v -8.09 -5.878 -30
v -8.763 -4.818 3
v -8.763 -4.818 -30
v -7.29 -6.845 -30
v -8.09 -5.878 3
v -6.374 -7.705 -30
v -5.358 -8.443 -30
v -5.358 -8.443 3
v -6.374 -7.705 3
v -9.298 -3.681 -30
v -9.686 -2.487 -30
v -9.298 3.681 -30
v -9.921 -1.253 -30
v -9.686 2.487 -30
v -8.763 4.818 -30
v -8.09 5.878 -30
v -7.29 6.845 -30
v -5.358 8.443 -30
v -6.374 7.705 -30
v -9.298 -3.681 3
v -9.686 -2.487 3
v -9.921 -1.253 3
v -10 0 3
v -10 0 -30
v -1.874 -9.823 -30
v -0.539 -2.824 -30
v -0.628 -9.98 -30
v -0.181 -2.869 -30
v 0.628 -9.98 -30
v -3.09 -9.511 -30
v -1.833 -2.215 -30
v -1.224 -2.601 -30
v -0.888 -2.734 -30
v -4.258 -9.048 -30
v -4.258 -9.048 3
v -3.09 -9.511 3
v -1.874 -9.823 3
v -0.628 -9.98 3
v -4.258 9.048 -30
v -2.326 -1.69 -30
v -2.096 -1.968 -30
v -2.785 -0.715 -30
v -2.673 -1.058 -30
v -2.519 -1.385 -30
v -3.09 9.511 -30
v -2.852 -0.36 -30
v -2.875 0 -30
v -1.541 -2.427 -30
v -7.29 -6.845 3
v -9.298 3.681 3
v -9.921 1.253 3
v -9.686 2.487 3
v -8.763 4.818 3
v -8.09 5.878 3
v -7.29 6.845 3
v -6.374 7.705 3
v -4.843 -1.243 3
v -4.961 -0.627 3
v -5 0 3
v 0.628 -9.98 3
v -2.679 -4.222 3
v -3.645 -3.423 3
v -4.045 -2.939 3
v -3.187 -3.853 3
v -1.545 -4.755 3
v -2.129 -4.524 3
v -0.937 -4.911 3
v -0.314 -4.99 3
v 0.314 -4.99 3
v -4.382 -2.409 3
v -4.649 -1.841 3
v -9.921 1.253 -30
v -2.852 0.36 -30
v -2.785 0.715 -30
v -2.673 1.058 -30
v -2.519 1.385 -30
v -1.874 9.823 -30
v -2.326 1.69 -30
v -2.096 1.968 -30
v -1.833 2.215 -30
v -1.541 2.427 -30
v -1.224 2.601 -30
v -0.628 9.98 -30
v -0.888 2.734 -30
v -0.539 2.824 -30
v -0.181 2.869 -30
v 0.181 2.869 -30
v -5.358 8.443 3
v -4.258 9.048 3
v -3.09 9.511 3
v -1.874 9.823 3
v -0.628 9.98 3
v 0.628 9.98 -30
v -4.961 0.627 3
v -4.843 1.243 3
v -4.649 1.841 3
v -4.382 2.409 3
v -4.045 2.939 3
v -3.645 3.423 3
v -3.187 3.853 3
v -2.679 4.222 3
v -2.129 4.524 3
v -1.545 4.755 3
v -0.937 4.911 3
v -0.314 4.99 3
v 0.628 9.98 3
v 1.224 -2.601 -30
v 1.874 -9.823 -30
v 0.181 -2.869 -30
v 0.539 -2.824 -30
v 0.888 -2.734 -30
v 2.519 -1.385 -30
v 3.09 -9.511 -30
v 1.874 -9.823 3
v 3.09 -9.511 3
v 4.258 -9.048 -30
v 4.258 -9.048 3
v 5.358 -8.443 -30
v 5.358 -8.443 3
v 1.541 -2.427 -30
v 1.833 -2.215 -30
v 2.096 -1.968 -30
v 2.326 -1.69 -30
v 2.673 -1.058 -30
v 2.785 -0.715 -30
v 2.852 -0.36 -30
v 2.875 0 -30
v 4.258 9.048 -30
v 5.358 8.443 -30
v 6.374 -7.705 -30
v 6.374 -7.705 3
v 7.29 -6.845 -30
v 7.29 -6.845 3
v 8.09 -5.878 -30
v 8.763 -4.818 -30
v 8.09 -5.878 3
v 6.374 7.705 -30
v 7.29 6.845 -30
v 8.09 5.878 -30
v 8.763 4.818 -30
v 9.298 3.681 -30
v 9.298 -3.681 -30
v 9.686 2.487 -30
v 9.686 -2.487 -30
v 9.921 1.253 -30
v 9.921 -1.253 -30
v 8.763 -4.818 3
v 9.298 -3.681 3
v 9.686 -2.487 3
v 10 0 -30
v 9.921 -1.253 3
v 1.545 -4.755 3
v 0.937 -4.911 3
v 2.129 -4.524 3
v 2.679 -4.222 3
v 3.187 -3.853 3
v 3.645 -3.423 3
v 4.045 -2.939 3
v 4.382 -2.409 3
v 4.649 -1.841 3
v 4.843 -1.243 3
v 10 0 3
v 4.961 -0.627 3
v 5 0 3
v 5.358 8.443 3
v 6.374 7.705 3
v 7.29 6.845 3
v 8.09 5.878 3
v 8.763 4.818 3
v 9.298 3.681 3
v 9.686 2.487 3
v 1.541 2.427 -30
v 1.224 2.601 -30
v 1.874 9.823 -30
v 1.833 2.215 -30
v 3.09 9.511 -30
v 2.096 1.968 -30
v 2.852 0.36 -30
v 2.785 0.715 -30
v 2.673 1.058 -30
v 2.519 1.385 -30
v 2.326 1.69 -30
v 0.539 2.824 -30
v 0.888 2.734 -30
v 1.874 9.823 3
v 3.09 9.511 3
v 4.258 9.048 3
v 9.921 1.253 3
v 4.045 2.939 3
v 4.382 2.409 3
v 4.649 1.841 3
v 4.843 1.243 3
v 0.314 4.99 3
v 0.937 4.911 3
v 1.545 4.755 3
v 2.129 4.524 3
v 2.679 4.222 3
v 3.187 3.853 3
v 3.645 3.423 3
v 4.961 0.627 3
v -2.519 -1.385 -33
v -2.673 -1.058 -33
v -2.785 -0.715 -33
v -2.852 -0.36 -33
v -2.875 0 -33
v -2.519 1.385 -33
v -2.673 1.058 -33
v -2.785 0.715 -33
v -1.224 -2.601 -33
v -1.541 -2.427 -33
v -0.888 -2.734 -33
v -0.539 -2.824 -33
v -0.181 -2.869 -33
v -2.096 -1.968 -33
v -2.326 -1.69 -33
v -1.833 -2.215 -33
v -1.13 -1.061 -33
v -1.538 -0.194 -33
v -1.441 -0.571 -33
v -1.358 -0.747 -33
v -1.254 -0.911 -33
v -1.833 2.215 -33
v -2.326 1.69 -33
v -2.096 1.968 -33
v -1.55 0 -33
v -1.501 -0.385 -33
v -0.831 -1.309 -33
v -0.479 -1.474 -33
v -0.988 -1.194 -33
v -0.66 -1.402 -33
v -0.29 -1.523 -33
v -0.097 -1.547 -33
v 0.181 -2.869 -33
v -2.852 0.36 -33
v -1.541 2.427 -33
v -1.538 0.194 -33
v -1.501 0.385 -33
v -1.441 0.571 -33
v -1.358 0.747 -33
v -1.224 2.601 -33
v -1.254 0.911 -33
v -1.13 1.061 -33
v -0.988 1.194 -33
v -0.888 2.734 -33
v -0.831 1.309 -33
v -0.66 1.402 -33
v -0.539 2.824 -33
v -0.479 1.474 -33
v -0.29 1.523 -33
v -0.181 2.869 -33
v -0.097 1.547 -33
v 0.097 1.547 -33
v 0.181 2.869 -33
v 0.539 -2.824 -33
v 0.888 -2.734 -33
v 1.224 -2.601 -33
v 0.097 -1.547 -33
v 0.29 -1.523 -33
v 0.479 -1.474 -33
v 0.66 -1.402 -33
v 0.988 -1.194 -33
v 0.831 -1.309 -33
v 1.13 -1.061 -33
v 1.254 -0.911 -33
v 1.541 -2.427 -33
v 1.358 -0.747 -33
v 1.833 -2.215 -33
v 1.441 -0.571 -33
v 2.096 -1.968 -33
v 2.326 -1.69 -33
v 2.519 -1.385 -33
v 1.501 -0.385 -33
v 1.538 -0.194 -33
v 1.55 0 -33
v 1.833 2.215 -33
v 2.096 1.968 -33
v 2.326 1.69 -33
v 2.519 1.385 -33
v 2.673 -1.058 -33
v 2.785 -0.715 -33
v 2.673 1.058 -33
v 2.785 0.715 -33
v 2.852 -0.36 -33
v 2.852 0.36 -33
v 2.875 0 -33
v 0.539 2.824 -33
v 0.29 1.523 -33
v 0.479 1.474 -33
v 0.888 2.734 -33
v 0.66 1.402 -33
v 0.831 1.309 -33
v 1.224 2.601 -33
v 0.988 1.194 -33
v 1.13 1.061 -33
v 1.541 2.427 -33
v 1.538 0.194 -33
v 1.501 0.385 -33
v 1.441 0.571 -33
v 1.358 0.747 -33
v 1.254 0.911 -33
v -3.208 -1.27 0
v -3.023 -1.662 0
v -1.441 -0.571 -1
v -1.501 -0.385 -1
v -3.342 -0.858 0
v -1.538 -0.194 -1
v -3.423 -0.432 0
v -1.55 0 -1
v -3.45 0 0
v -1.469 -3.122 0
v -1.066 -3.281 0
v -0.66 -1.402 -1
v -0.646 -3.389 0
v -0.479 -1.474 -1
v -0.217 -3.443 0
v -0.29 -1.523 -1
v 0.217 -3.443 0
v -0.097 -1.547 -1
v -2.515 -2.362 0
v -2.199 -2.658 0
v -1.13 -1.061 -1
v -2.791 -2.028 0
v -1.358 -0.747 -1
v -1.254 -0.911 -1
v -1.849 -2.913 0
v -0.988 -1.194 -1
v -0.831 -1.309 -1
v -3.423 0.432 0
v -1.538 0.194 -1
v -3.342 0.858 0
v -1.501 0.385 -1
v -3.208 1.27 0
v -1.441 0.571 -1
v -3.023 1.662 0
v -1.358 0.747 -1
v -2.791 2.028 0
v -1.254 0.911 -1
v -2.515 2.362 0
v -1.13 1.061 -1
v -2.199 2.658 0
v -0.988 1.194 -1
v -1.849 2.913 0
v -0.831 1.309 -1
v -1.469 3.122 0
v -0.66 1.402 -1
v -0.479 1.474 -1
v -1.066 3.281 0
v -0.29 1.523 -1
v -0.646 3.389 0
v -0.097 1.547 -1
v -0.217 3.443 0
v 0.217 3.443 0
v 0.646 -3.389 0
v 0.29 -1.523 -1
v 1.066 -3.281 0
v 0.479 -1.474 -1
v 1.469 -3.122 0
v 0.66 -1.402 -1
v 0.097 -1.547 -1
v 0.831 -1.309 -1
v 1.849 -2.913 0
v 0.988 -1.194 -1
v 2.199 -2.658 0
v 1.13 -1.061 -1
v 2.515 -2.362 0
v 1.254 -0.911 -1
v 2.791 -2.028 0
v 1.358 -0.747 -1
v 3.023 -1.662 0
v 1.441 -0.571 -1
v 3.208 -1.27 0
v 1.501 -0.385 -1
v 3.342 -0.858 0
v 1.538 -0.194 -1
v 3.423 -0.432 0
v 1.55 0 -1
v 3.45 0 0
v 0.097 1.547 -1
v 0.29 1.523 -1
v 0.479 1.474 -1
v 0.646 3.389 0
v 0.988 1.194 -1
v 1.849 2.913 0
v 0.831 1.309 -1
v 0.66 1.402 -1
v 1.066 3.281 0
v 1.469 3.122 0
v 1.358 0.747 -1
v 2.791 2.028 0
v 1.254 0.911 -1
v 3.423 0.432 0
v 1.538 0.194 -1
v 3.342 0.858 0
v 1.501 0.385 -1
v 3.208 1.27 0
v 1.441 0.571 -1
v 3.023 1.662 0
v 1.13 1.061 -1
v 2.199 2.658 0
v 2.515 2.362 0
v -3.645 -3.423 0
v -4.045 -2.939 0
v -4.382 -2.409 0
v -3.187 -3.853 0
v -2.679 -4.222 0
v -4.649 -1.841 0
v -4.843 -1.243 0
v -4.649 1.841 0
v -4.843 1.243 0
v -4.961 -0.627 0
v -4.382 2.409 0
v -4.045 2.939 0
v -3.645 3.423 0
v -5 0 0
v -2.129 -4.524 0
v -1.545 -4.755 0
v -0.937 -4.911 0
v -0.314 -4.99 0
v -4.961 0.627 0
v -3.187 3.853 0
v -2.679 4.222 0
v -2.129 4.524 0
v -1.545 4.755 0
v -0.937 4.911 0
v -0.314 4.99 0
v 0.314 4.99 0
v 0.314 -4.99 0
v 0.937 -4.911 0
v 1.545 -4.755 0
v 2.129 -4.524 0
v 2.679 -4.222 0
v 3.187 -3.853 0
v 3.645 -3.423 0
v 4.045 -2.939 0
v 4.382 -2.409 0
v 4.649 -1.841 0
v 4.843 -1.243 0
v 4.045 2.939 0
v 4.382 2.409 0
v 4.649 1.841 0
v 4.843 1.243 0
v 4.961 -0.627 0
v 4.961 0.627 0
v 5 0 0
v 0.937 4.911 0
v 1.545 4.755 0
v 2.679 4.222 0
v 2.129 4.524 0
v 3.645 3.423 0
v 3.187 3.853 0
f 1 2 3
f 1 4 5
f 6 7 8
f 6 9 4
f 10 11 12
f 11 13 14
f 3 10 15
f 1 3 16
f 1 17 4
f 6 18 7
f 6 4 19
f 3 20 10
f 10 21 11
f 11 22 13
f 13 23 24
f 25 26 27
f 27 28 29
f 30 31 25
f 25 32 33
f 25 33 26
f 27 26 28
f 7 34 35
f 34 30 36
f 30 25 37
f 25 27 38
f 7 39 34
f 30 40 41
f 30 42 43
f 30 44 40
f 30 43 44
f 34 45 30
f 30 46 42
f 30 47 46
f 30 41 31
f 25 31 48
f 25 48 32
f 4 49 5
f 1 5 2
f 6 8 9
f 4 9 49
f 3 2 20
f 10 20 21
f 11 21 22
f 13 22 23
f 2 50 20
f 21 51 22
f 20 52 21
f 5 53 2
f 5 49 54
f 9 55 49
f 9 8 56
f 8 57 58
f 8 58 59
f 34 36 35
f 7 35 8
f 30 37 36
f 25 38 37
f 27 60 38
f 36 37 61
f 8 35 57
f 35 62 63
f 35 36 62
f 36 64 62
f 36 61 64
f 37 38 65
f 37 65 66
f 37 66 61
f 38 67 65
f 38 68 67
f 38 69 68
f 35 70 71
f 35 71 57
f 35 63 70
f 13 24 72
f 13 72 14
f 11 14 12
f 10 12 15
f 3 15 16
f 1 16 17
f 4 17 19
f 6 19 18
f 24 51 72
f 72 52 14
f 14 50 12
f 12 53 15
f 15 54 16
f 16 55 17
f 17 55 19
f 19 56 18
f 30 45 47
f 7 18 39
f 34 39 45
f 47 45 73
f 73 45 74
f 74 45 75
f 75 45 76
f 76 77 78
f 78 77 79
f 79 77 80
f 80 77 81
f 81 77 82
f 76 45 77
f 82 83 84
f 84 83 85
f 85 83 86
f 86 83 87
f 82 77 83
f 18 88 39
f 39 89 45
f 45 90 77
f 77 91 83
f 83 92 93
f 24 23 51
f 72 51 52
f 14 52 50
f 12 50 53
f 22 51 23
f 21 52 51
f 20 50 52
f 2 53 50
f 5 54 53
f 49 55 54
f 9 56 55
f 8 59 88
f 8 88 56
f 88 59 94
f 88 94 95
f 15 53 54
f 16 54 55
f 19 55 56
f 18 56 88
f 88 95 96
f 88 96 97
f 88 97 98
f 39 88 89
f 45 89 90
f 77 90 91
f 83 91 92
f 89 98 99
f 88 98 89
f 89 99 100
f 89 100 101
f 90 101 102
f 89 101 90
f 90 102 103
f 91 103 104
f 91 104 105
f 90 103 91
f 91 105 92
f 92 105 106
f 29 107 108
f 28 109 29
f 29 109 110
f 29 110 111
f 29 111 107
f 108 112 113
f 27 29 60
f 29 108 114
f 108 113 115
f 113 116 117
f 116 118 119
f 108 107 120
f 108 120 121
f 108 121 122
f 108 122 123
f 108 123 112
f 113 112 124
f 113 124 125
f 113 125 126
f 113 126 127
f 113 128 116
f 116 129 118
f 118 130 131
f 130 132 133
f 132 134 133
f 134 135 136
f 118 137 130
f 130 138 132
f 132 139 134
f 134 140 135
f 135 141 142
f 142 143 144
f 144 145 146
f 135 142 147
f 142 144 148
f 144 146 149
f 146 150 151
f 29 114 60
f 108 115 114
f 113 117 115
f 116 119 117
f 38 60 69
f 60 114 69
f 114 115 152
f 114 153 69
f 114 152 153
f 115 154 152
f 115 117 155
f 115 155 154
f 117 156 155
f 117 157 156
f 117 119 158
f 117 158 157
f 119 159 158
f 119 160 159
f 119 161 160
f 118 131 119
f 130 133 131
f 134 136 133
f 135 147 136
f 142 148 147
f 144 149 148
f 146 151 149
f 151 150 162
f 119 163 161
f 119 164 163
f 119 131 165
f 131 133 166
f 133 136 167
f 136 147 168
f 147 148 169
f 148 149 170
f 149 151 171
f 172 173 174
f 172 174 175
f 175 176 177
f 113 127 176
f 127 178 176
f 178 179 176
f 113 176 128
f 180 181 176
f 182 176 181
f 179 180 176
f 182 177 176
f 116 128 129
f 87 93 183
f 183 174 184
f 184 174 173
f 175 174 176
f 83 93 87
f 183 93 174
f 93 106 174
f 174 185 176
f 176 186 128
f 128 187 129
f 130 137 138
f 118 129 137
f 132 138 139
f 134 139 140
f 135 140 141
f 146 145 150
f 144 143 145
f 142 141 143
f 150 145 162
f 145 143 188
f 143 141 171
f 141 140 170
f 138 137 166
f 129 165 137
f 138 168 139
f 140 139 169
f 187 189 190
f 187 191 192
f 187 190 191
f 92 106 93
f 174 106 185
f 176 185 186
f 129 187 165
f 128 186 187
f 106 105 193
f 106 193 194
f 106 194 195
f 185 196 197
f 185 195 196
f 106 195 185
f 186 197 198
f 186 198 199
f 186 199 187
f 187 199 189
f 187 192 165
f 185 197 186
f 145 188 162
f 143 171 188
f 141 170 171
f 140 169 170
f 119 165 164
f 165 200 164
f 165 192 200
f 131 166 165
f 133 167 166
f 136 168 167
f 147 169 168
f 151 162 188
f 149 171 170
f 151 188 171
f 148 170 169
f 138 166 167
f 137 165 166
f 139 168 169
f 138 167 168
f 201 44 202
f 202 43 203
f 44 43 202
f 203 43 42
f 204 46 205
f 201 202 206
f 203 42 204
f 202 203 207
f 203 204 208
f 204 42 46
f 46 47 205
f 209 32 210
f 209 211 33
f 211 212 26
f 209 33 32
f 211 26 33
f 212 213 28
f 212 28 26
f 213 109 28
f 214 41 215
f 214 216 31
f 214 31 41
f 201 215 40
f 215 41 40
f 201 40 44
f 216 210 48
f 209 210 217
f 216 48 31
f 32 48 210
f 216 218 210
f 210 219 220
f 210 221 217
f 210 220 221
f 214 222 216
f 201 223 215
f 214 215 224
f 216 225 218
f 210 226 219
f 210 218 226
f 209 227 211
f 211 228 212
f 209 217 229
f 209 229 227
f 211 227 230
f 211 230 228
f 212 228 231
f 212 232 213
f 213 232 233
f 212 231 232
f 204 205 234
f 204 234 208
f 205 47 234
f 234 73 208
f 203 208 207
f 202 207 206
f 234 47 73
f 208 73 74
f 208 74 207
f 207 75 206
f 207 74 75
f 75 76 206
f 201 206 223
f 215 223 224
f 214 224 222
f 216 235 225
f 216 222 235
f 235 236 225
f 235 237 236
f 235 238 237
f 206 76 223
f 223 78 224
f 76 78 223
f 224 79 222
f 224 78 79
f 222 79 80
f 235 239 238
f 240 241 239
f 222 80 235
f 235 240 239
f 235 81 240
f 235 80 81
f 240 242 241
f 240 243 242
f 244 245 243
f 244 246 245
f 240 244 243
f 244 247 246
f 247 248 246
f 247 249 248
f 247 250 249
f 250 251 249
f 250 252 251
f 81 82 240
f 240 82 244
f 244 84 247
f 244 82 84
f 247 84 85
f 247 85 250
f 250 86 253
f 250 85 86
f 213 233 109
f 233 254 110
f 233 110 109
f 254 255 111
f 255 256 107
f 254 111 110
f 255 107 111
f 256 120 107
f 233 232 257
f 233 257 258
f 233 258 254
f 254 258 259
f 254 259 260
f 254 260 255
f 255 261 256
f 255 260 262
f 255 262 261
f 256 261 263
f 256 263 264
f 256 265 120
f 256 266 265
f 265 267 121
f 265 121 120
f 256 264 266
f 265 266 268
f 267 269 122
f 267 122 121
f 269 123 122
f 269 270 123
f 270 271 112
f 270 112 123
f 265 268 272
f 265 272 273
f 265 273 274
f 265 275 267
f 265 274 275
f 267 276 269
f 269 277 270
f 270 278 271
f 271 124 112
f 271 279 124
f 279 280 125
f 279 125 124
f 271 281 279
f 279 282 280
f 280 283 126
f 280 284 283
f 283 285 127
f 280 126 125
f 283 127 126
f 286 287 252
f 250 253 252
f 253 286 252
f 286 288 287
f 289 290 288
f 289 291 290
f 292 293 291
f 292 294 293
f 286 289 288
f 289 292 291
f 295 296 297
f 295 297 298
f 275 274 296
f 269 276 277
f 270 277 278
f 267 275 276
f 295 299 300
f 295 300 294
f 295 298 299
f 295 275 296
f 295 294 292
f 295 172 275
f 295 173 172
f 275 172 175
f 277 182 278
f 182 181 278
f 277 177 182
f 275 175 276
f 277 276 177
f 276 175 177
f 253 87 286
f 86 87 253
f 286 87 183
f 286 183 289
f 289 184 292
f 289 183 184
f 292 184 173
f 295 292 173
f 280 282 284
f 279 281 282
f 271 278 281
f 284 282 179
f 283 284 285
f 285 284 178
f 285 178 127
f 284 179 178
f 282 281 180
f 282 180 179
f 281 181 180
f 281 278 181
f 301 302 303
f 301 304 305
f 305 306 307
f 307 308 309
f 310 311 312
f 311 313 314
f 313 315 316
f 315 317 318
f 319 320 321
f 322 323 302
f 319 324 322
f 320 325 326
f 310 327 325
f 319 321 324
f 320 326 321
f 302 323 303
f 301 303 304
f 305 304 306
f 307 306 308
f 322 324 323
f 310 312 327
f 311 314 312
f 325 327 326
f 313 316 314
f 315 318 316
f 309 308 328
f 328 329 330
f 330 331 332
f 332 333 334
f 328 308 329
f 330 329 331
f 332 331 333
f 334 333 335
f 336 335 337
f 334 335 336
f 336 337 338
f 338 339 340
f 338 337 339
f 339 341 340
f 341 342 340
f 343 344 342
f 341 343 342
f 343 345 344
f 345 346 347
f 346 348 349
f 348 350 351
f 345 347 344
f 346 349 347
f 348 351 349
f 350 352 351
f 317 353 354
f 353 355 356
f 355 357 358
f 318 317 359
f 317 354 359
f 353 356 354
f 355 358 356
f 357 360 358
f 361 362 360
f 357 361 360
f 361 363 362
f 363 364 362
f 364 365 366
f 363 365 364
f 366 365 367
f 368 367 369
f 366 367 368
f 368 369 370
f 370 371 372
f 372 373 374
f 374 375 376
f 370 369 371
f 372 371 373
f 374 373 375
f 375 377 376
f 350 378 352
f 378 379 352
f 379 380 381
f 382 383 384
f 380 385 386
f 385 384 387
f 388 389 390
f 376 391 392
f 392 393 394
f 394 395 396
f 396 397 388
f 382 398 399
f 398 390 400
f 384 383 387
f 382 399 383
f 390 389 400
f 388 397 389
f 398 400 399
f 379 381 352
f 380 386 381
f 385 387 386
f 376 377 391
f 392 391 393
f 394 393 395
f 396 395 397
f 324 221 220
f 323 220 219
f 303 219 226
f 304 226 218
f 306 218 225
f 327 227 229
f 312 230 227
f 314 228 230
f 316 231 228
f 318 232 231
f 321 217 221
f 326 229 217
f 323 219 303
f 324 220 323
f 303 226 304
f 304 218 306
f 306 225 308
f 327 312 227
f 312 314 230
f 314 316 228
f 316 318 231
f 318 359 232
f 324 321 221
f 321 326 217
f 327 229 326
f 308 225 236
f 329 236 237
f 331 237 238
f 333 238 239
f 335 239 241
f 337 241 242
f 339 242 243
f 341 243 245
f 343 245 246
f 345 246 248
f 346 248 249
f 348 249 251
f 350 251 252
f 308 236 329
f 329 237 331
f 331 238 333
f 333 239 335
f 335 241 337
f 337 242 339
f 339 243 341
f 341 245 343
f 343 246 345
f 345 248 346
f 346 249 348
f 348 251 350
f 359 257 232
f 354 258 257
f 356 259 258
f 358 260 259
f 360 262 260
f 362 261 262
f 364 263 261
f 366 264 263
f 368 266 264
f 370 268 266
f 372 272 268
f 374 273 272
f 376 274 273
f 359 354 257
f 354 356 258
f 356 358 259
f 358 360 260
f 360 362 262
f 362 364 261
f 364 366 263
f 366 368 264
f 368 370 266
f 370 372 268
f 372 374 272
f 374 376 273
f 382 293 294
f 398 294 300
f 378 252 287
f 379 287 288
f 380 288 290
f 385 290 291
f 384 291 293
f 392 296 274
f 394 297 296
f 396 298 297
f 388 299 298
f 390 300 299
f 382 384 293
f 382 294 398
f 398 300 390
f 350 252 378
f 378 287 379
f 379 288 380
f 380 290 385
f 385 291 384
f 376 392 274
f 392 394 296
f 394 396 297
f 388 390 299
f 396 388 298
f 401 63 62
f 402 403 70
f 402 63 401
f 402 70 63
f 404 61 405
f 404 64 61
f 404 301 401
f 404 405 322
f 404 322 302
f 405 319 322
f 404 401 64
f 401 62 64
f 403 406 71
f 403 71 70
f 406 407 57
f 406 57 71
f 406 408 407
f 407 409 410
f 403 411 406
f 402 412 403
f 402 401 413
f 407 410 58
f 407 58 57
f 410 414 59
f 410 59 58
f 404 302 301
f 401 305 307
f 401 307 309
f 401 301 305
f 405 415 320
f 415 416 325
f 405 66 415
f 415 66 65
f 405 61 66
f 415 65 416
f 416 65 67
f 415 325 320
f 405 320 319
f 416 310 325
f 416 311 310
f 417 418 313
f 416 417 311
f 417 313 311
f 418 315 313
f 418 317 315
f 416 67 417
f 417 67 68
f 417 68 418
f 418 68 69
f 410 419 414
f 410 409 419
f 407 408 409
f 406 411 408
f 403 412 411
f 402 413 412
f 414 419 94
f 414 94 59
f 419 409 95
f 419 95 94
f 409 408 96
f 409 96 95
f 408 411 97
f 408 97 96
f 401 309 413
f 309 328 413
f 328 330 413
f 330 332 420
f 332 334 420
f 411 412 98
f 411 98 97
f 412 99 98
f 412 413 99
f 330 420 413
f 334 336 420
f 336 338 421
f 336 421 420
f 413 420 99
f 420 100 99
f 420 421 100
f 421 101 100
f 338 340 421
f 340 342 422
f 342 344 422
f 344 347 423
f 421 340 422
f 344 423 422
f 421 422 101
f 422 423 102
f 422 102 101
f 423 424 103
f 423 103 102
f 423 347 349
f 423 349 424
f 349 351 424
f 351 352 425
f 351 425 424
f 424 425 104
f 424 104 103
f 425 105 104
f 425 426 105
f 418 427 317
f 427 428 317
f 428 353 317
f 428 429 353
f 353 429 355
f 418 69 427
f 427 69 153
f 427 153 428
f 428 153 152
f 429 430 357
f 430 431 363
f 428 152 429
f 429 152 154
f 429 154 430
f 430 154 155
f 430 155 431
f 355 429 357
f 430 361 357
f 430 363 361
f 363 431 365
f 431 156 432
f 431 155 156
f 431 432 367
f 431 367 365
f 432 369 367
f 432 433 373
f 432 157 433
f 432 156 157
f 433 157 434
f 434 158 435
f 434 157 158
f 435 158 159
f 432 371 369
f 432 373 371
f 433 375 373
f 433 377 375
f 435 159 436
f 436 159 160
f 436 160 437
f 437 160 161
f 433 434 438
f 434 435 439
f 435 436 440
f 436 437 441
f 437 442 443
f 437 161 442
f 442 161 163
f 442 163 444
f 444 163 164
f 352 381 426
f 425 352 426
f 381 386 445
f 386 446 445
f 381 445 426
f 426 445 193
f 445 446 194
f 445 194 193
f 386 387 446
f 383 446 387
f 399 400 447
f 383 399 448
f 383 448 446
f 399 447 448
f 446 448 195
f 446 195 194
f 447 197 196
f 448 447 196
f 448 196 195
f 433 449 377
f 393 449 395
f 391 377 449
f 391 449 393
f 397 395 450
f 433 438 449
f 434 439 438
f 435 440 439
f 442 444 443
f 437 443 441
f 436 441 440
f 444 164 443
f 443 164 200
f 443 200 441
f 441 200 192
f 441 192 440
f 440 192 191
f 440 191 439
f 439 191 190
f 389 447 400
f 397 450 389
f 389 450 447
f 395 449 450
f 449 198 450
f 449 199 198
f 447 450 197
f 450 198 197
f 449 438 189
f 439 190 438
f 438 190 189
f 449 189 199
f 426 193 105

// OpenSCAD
$fn = 50;


difference() {
	union() {
		translate(v = [0, 0, -30.0000000000]) {
			cylinder(h = 33, r = 10.0000000000);
		}
		#translate(v = [0, 0, -33.0000000000]) {
			cylinder(h = 33, r = 2.8750000000);
		}
	}
	union() {
		translate(v = [0, 0, 0]) {
			rotate(a = [0, 0, 0]) {
				difference() {
					union() {
						translate(v = [0, 0, -33.0000000000]) {
							cylinder(h = 33, r = 1.2500000000);
						}
						translate(v = [0, 0, -1.0000000000]) {
							cylinder(h = 1.0000000000, r1 = 1.5500000000, r2 = 3.4500000000);
						}
						translate(v = [0, 0, -33.0000000000]) {
							cylinder(h = 33, r = 1.5500000000);
						}
						translate(v = [0, 0, -33.0000000000]) {
							cylinder(h = 33, r = 1.2500000000);
						}
					}
					union();
				}
			}
		}
		#cylinder(h = 3, r = 5.0000000000);
	}
}
